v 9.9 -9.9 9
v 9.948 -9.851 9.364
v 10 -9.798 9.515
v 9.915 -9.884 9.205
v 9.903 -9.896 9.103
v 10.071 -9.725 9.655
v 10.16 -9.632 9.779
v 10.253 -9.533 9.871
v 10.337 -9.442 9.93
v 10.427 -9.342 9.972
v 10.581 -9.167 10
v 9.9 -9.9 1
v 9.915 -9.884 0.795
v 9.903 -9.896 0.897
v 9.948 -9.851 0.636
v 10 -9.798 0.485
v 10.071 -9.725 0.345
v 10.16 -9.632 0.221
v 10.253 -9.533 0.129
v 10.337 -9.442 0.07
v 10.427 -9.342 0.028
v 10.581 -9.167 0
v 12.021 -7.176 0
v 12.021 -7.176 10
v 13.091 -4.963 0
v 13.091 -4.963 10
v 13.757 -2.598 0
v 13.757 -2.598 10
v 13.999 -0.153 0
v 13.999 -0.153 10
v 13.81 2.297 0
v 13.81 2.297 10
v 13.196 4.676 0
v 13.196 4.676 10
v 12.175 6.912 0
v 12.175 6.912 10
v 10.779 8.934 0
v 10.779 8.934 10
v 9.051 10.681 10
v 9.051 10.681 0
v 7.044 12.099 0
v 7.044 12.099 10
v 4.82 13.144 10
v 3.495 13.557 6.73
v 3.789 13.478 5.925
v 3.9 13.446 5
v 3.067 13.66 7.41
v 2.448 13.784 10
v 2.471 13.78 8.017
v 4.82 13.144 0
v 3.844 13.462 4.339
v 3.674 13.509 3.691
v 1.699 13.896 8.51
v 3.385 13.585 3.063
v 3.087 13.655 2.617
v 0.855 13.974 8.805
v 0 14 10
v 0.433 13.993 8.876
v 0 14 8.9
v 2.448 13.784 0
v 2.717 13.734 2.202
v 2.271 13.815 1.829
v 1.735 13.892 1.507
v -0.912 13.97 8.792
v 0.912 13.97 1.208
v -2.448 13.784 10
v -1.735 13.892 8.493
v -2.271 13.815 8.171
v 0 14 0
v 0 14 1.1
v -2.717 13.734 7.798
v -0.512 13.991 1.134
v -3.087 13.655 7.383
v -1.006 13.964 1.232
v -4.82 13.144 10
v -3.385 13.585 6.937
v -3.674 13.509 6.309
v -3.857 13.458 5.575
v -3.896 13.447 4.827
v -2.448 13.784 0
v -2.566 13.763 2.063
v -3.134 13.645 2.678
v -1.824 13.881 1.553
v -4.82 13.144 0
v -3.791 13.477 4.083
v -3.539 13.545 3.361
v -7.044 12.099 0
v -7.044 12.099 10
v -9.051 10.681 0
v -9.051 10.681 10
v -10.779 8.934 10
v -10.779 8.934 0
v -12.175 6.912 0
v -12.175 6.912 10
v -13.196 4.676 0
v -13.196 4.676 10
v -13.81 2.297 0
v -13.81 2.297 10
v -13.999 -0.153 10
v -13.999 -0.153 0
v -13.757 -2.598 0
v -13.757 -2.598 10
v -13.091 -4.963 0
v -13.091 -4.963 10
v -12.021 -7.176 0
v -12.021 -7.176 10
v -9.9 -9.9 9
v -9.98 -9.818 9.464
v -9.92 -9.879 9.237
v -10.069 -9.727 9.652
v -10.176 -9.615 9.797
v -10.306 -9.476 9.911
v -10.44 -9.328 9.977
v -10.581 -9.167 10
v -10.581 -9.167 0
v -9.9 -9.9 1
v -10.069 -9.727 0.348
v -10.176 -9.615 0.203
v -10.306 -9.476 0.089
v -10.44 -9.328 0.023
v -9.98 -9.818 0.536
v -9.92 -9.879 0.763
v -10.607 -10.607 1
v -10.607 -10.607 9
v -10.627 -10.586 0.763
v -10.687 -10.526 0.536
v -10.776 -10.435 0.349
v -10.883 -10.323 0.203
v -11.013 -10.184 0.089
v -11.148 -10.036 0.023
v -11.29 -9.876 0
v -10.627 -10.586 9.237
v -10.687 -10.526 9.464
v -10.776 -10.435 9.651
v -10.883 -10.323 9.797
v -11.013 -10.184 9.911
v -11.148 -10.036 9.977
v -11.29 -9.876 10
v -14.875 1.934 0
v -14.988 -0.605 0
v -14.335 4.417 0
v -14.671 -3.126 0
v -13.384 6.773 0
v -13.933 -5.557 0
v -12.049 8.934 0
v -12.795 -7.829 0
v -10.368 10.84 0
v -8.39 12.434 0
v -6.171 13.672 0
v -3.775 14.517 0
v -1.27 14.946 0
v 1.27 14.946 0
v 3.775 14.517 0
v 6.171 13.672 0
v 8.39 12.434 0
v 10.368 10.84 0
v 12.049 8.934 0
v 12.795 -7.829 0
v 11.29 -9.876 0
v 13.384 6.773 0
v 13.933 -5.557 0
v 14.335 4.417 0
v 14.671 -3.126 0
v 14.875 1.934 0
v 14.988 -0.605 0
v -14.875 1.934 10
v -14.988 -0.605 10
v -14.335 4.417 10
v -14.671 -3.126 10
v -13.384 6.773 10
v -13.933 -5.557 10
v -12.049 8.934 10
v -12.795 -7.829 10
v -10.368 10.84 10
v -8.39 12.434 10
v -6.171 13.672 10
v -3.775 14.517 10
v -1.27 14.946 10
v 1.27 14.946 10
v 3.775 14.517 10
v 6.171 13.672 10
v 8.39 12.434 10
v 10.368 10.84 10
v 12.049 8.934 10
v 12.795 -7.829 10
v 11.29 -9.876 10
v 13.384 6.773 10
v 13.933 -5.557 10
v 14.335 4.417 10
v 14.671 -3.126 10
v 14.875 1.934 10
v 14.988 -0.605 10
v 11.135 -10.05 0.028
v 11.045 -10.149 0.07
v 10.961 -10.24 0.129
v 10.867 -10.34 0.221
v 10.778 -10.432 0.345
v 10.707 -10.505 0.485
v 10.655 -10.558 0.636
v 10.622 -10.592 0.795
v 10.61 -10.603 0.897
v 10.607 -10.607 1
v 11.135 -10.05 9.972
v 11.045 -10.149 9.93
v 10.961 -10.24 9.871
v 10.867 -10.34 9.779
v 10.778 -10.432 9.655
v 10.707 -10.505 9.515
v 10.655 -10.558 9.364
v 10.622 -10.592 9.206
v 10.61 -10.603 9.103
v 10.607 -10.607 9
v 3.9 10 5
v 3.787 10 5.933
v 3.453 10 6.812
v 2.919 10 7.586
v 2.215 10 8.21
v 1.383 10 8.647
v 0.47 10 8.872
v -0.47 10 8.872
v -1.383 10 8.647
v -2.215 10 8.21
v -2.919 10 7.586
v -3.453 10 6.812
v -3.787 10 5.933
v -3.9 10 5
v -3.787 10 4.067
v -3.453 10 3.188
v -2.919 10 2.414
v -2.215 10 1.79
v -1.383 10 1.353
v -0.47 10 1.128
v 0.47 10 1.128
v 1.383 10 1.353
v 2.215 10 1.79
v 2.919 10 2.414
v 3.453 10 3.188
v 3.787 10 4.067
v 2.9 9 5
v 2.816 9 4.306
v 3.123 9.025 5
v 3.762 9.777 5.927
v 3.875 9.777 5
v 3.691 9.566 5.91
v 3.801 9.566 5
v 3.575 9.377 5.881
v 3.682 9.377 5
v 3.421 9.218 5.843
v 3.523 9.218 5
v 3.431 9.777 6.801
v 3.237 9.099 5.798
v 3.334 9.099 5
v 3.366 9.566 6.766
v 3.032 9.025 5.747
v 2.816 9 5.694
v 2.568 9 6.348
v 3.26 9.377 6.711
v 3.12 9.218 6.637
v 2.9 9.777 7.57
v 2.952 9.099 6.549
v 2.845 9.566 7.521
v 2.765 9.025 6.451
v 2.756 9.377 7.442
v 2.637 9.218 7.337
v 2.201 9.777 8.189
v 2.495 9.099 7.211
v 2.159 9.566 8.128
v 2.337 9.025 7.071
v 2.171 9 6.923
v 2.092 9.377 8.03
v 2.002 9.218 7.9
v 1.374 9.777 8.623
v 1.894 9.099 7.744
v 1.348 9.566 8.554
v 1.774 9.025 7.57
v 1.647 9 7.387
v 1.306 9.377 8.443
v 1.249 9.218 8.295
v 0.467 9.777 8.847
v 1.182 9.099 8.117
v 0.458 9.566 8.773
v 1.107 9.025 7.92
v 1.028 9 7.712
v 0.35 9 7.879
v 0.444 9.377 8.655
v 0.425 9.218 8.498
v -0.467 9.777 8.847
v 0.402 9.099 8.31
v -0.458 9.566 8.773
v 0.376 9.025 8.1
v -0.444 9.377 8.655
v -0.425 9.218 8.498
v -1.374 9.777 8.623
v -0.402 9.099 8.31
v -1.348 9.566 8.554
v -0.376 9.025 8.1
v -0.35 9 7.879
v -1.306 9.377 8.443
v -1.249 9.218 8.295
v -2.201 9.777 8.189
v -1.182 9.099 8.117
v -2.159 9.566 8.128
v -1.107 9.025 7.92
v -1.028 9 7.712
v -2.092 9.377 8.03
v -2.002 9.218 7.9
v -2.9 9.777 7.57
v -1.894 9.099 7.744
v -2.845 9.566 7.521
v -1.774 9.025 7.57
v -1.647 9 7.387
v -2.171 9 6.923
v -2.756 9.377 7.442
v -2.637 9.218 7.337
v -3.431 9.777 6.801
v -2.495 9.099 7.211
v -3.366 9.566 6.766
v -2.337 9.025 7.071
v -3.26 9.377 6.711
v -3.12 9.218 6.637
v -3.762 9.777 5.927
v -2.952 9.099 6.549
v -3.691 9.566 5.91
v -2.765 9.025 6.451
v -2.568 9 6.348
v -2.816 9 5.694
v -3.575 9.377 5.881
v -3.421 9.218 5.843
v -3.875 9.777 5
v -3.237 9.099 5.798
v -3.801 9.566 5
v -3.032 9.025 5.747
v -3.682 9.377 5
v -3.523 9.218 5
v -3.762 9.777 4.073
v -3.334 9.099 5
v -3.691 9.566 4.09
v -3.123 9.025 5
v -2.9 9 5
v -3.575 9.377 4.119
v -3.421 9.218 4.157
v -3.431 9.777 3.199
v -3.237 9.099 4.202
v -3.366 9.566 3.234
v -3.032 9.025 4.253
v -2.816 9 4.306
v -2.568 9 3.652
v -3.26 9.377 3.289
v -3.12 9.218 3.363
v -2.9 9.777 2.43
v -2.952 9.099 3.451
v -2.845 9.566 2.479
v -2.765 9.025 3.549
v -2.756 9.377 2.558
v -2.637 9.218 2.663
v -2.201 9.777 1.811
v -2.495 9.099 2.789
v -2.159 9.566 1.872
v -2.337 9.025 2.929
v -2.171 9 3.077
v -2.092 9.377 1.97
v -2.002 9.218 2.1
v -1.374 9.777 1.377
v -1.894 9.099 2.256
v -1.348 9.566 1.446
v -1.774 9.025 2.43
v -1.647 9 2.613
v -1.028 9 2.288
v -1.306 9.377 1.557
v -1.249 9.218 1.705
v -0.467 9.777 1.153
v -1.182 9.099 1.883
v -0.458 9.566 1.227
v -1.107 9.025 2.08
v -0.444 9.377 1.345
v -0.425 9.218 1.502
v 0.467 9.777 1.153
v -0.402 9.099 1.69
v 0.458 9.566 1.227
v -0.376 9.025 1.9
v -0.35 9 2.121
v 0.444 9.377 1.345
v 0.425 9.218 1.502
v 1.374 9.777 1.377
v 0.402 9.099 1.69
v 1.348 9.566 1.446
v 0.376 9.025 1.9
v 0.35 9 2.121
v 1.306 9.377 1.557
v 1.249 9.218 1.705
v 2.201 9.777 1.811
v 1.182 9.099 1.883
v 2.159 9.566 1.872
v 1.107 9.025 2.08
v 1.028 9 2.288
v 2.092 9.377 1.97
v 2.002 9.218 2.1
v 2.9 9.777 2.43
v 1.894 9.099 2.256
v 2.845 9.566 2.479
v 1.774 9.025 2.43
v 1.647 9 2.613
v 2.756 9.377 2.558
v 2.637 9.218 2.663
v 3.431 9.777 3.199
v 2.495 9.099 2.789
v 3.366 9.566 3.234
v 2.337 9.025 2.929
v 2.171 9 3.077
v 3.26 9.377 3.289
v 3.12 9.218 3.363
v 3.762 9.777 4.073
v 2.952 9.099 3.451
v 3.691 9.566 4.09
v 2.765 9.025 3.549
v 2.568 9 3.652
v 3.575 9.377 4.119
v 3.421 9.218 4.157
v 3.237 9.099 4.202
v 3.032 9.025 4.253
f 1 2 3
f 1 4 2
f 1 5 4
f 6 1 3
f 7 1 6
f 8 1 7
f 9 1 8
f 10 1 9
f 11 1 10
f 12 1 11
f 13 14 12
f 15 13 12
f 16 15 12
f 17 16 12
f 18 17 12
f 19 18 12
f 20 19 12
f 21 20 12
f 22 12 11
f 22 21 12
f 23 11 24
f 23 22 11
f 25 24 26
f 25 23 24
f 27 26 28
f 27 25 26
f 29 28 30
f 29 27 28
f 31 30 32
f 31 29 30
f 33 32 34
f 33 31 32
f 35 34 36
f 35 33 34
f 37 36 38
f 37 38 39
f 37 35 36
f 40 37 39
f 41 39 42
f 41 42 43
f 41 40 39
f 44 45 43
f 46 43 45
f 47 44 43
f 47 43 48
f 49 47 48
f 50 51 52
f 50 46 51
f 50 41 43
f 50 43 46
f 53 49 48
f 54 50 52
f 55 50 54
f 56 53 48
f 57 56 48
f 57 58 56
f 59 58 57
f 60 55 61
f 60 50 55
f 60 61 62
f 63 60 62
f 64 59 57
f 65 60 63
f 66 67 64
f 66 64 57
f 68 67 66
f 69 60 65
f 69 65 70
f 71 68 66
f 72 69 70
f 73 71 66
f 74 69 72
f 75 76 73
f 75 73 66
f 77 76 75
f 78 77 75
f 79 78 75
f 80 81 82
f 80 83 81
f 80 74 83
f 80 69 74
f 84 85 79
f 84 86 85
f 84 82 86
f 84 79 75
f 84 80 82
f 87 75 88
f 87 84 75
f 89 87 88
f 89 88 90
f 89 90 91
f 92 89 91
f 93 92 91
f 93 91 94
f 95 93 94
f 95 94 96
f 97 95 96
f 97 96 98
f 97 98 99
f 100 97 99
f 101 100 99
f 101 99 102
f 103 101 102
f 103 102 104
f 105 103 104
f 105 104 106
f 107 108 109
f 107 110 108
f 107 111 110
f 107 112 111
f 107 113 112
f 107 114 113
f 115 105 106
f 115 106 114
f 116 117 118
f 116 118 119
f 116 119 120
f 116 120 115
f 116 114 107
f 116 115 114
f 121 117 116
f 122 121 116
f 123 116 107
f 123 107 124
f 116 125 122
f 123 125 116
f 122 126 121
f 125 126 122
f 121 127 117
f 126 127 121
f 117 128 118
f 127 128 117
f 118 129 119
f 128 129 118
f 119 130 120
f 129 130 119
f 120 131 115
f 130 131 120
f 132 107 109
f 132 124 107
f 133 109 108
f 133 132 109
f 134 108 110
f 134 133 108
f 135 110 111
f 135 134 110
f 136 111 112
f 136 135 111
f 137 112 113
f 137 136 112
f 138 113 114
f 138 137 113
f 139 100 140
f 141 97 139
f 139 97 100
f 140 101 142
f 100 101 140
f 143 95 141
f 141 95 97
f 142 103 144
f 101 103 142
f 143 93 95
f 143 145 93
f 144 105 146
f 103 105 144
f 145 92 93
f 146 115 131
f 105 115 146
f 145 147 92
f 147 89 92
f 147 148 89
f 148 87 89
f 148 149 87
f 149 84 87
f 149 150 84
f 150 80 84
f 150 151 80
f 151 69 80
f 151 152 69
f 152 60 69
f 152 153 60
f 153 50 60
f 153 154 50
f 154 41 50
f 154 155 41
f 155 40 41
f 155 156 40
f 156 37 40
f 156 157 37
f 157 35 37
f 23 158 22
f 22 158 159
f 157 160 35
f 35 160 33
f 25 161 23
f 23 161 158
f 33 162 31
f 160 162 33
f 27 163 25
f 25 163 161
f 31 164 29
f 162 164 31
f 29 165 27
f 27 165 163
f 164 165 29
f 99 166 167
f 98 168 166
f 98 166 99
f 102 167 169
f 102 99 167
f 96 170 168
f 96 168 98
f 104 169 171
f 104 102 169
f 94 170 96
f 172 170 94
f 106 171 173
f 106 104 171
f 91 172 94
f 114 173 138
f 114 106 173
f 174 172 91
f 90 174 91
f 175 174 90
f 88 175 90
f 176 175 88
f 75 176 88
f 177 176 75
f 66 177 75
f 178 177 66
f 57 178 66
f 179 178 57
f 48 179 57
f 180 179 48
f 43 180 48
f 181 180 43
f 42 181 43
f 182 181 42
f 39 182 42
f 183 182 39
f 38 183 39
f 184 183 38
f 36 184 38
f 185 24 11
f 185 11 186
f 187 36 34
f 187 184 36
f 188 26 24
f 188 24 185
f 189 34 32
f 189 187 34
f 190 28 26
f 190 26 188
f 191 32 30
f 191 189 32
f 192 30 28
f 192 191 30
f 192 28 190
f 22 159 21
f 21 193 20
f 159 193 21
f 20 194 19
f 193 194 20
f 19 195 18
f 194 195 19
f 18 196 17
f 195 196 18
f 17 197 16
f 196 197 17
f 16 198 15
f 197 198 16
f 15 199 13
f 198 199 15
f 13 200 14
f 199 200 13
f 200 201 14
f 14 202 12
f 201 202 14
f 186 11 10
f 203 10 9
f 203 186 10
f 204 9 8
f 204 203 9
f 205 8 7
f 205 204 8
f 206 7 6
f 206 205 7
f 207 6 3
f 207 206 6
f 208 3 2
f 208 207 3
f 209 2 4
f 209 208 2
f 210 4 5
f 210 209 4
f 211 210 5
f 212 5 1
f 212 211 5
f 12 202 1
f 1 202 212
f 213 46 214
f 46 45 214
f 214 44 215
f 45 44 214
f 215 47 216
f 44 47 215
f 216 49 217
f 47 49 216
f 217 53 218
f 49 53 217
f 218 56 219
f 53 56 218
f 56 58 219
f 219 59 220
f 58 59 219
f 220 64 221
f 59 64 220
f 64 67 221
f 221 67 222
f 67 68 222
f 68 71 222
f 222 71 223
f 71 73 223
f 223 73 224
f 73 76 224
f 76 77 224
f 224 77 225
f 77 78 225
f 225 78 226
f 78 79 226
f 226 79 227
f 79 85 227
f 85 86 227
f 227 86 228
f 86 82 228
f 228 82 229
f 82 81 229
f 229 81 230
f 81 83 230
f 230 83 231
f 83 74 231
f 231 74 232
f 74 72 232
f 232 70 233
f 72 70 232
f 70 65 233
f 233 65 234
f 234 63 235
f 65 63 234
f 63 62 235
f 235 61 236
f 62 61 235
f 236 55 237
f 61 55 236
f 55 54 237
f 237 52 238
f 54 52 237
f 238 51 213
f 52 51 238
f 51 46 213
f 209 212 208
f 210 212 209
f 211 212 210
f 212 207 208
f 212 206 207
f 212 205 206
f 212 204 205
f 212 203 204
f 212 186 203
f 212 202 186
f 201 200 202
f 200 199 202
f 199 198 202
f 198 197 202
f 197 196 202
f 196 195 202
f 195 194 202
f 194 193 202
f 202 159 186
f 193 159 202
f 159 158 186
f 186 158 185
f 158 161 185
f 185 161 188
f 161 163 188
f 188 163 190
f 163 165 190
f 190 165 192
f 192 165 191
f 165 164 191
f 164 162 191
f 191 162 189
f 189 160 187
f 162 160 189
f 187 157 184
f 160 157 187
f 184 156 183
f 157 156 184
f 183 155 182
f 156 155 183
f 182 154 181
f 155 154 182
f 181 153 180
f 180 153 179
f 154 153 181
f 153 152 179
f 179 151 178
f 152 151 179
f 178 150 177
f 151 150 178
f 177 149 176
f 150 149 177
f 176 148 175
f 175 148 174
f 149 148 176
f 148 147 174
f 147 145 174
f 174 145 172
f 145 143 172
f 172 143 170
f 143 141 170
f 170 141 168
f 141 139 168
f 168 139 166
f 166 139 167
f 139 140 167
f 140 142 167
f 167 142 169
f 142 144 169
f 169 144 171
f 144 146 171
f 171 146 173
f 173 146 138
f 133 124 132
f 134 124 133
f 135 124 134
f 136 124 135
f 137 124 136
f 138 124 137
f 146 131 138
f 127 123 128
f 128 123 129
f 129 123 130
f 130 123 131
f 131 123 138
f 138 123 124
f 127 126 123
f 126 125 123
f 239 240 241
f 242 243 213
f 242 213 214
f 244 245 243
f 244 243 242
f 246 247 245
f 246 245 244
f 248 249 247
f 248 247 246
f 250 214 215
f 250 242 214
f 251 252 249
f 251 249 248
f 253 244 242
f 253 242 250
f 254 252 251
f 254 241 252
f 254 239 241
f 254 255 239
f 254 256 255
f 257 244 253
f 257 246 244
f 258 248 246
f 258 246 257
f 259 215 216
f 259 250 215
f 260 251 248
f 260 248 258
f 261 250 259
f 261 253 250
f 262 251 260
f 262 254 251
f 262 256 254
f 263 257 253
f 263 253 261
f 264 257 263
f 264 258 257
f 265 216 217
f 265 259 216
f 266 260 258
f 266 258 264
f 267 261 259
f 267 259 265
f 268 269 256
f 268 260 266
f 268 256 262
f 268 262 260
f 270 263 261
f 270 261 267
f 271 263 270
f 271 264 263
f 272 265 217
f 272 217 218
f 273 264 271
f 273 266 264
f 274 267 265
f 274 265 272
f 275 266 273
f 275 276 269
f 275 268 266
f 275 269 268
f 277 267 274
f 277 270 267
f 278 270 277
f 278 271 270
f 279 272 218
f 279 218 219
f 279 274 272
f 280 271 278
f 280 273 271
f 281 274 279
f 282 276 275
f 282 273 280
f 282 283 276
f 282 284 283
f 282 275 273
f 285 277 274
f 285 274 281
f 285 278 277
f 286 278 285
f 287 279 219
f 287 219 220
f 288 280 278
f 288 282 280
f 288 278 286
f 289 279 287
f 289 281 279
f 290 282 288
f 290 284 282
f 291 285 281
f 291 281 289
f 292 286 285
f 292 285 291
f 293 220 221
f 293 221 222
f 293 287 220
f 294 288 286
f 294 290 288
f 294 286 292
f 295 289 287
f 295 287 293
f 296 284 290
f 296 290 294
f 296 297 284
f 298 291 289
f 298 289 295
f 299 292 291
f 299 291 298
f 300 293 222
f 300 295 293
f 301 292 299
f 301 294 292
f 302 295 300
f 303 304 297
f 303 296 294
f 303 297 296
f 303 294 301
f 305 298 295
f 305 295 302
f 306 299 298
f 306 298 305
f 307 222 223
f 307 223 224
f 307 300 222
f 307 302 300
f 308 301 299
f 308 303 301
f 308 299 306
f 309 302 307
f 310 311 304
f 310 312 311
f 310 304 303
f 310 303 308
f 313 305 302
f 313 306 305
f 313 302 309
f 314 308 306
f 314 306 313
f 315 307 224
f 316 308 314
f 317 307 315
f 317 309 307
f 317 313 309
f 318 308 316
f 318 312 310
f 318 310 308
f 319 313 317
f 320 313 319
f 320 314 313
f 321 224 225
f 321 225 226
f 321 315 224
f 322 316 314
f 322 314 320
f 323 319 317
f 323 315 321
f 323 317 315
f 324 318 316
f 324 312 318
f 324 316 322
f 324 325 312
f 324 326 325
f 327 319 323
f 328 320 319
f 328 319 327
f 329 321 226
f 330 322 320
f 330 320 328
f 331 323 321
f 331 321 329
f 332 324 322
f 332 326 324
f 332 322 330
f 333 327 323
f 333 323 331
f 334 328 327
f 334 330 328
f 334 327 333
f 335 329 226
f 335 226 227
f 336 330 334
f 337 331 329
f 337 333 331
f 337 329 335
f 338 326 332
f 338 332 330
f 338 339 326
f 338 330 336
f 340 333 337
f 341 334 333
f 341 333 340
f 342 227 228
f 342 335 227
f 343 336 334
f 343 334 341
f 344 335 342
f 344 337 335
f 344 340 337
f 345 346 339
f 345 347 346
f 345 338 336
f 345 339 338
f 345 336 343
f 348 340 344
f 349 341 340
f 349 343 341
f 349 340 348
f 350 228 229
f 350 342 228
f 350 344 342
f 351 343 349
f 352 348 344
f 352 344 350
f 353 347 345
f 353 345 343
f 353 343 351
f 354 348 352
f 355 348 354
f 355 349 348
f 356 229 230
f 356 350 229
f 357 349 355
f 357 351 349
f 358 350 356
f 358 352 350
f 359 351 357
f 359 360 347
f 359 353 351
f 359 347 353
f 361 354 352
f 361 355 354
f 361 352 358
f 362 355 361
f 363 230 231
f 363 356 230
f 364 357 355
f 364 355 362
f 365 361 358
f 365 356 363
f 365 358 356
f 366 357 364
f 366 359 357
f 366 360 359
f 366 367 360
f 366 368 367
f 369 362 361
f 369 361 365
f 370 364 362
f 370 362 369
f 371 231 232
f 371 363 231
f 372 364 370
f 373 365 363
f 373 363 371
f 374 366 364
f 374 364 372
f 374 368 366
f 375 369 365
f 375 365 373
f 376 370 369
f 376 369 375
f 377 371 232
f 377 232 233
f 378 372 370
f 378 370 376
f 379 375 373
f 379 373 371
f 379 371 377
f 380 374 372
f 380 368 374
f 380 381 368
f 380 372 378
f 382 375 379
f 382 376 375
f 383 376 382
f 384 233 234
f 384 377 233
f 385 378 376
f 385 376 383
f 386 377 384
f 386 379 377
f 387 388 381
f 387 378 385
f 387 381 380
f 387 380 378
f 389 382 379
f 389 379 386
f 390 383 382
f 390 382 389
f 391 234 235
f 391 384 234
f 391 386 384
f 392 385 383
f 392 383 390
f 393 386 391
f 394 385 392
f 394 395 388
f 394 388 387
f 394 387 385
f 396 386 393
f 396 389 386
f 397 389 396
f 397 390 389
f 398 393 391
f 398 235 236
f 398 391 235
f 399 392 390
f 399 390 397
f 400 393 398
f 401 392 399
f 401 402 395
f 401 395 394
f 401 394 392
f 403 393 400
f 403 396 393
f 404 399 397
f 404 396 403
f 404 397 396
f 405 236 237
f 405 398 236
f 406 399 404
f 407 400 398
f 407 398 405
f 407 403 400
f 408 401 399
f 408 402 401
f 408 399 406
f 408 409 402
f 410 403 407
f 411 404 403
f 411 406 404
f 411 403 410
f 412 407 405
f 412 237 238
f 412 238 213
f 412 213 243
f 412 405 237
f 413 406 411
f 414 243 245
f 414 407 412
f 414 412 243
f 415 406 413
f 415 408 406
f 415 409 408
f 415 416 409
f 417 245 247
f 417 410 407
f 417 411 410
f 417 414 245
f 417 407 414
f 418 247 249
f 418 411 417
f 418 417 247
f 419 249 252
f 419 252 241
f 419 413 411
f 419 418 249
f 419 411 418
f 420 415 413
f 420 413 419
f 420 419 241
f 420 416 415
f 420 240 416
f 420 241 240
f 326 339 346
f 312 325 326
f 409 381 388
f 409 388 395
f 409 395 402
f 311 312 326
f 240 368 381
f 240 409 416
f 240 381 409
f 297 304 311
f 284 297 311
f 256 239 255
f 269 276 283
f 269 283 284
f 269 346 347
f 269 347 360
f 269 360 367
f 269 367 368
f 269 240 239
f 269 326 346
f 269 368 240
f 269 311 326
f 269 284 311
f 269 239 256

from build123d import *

# Parameters (mm, degrees)
CYLINDER_W        = 15
CYLINDER_H        = 10
CYLINDER_ANGLE    = 270
CYLINDER001_W     = 14
CYLINDER001_H     = 10
CYLINDER001_ANGLE = 270
CYLINDER002_R     = 3.9
CYLINDER002_DEPTH = 5
FILLET_R          = 1
FILLET001_R       = 1


with BuildPart() as part:
    # Cylinder → Cylinder (revolve)
    with BuildSketch(Plane(origin=(0, 0, 0), x_dir=(0.707107, -0.707107, 0), z_dir=(-0.707107, -0.707107, 0))):
        with Locations((7.5, 5)):
            Rectangle(CYLINDER_W, CYLINDER_H)
    revolve(axis=Axis((0, 0, 0), (0, 0, 1)), revolution_arc=CYLINDER_ANGLE)

    # Cylinder001 → Cylinder001 (revolve, cut)
    with BuildSketch(Plane(origin=(0, 0, 0), x_dir=(0.707107, -0.707107, 0), z_dir=(-0.707107, -0.707107, 0))):
        with Locations((7, 5)):
            Rectangle(CYLINDER001_W, CYLINDER001_H)
    revolve(axis=Axis((0, 0, 0), (0, 0, 1)), revolution_arc=CYLINDER001_ANGLE, mode=Mode.SUBTRACT)

    # Cylinder002 → Cylinder002 (join)
    with BuildSketch(Plane(origin=(0, 14, 5), x_dir=(1, 0, 0), z_dir=(0, -1, 0))):
        Circle(CYLINDER002_R)
    extrude(amount=CYLINDER002_DEPTH)

    # Fillet
    fillet_edges = [part.edges().sort_by_distance(p)[0] for p in [
        (-3.9, 9, 5),
    ]]
    fillet(fillet_edges, radius=FILLET_R)

    # Fillet001
    fillet001_edges = [part.edges().sort_by_distance(p)[0] for p in [
        (-10.253048, -10.253048, 10),
        (-10.253048, -10.253048, 0),
        (10.253048, -10.253048, 0),
        (10.253048, -10.253048, 10),
    ]]
    fillet(fillet001_edges, radius=FILLET001_R)


solid = part.part
